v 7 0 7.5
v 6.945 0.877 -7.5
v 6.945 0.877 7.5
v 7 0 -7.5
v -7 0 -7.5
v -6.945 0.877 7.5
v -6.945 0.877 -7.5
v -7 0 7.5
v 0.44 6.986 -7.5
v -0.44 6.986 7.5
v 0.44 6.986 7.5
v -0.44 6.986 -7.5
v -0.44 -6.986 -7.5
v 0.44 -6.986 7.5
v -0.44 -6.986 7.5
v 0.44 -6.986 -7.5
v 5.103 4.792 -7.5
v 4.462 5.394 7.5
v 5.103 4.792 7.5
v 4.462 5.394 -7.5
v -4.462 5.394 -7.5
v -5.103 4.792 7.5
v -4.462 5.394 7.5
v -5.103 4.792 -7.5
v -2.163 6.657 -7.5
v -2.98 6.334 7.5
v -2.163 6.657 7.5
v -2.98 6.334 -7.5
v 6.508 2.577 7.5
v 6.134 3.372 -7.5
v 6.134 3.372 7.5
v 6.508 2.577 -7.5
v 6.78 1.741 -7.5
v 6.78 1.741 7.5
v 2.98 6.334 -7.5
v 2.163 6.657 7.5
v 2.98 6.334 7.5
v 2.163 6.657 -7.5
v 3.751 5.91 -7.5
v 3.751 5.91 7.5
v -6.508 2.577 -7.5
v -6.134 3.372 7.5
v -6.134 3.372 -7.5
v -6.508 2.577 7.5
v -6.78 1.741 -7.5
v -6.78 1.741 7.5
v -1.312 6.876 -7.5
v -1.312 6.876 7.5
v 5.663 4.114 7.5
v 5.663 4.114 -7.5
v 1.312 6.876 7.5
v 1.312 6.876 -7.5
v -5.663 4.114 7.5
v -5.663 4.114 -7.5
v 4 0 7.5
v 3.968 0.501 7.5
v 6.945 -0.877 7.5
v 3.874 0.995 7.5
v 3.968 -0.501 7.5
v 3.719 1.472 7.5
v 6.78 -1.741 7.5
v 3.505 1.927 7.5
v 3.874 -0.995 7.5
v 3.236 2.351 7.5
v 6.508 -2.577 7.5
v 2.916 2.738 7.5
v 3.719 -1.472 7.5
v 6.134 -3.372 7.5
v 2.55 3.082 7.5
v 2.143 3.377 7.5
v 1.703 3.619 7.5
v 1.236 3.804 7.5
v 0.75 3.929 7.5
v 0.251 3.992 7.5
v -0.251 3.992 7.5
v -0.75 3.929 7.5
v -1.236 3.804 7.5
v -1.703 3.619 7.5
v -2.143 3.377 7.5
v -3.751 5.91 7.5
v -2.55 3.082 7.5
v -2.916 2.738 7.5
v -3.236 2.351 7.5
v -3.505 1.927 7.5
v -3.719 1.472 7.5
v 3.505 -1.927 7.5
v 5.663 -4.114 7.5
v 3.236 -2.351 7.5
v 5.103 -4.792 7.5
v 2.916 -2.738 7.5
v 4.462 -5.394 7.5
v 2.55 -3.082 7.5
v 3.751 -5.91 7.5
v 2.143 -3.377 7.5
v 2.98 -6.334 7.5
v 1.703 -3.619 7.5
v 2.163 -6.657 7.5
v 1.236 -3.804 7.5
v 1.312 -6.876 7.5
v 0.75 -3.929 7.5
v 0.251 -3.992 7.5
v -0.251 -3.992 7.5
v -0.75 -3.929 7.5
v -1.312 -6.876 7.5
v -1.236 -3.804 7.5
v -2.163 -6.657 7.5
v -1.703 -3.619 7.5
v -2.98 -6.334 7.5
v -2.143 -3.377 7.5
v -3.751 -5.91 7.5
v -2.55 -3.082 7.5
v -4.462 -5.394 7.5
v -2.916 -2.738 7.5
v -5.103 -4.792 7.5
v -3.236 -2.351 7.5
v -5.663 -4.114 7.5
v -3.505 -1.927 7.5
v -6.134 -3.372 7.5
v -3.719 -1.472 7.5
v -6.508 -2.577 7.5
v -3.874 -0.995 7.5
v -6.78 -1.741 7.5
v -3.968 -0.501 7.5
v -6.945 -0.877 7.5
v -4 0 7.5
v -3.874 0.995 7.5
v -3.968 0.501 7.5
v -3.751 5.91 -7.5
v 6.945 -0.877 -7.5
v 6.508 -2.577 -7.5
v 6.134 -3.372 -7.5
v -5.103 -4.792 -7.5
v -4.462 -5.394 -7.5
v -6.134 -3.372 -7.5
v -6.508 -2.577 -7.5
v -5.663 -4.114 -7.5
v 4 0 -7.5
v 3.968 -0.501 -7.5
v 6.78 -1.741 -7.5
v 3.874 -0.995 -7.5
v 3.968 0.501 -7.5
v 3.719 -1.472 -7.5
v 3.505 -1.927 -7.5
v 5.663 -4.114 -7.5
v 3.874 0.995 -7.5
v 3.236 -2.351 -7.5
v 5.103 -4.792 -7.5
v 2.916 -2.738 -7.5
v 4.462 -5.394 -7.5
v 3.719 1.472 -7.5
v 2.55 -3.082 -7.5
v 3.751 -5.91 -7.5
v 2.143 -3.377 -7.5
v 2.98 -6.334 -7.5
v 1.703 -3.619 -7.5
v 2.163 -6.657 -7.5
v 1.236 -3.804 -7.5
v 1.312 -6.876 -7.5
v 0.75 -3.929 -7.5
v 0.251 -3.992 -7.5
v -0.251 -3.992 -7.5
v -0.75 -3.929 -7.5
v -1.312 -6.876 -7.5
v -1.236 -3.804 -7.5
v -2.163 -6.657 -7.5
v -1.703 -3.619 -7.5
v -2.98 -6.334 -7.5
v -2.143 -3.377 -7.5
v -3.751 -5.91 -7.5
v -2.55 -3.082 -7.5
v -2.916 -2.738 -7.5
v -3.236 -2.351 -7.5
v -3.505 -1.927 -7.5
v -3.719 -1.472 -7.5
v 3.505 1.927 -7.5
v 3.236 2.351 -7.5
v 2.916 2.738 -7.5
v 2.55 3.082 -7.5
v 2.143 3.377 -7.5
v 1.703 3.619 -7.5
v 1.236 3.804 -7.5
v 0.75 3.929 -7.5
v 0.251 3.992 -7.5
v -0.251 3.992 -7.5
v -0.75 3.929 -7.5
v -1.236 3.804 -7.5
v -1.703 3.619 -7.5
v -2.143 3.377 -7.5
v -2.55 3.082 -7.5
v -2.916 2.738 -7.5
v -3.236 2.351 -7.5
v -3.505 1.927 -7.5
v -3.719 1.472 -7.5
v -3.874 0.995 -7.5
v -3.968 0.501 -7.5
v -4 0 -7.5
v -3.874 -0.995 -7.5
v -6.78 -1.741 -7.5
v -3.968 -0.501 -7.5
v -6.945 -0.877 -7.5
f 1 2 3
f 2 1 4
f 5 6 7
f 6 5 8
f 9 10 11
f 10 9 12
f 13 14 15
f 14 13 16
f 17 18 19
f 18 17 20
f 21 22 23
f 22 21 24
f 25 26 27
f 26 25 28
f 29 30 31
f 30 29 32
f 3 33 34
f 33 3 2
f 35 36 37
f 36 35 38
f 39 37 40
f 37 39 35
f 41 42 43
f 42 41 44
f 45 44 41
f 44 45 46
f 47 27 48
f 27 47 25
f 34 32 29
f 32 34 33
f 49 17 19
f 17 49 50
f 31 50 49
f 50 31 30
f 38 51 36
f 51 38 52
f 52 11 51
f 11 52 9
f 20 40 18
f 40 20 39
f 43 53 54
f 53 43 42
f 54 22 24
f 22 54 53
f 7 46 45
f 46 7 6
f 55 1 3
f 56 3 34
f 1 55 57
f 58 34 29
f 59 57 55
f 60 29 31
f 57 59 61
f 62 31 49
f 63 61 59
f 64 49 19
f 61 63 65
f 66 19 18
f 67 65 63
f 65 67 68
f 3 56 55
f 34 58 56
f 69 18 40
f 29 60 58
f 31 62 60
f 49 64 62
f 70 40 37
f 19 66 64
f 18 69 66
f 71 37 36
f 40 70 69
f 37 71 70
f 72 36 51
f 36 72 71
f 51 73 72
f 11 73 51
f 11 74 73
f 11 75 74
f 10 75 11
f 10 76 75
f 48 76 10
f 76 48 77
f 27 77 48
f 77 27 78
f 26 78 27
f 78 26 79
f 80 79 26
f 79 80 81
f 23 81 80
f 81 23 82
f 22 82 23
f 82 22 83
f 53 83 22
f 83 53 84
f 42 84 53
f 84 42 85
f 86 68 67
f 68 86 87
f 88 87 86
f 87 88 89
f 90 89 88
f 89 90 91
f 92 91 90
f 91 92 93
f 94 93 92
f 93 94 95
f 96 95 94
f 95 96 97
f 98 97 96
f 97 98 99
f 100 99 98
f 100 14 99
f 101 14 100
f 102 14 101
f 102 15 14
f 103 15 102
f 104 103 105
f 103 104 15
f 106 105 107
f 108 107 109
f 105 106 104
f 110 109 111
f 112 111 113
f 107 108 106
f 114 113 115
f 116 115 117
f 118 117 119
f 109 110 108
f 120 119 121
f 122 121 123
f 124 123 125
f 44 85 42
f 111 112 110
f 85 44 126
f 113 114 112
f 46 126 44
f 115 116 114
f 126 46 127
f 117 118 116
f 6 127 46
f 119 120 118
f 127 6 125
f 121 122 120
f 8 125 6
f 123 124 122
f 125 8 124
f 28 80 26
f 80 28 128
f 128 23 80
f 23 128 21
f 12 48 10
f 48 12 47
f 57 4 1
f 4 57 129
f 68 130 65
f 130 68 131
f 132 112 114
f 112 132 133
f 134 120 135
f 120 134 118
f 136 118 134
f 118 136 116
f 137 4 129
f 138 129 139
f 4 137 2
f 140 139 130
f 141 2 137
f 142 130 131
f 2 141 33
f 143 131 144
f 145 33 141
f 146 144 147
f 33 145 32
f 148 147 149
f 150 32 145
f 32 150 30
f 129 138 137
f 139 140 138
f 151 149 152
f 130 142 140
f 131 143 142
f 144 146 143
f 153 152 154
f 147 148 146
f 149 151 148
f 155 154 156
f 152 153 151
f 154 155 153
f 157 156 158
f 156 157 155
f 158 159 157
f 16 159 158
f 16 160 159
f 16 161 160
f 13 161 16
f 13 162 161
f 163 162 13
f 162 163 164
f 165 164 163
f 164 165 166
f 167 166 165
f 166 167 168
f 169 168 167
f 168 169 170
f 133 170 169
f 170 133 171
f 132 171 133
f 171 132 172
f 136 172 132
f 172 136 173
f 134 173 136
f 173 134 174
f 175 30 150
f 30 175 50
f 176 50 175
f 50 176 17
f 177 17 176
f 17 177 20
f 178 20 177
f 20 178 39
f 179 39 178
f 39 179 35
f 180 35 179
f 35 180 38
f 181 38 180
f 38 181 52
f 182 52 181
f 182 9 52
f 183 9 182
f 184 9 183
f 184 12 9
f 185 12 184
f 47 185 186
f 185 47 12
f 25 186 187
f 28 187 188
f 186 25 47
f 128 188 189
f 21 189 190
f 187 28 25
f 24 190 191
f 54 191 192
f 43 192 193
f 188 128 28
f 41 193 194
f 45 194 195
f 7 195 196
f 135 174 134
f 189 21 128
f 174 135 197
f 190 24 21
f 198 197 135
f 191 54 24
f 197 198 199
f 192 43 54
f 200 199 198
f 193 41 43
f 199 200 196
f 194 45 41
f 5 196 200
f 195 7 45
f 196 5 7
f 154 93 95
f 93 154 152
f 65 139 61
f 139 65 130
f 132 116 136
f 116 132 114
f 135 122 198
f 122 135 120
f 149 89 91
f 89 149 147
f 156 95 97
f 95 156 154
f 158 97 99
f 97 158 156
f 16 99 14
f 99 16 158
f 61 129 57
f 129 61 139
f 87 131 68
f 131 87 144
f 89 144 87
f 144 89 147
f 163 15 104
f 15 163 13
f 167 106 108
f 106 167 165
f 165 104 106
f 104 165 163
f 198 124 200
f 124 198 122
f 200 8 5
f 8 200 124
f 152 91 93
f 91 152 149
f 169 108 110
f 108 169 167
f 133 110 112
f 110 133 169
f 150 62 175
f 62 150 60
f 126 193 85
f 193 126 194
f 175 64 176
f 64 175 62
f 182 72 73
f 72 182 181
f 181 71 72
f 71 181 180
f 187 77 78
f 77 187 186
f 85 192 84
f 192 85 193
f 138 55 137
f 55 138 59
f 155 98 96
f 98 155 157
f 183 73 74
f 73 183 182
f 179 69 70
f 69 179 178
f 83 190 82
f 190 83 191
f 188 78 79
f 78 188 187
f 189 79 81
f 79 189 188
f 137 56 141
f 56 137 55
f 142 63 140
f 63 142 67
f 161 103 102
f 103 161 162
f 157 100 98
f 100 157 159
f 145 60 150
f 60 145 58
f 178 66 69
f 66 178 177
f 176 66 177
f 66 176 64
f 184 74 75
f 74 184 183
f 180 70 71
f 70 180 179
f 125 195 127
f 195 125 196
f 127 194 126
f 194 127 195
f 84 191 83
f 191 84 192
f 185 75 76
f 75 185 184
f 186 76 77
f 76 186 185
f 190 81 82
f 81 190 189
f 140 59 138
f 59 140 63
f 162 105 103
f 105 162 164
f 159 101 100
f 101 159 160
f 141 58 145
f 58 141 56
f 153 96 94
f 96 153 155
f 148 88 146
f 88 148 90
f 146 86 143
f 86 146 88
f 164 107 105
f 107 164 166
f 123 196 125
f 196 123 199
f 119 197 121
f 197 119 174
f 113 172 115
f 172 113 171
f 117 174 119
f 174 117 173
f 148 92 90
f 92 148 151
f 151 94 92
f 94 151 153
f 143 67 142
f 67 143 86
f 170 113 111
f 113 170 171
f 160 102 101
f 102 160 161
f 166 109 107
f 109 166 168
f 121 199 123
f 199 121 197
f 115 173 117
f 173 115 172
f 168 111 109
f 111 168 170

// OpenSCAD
$fn = 50;


difference() {
	union() {
		translate(v = [0, 0, -7.5000000000]) {
			cylinder(h = 15, r = 7.0000000000);
		}
	}
	union() {
		translate(v = [0, 0, -100.0000000000]) {
			cylinder(h = 200, r = 4);
		}
	}
}
